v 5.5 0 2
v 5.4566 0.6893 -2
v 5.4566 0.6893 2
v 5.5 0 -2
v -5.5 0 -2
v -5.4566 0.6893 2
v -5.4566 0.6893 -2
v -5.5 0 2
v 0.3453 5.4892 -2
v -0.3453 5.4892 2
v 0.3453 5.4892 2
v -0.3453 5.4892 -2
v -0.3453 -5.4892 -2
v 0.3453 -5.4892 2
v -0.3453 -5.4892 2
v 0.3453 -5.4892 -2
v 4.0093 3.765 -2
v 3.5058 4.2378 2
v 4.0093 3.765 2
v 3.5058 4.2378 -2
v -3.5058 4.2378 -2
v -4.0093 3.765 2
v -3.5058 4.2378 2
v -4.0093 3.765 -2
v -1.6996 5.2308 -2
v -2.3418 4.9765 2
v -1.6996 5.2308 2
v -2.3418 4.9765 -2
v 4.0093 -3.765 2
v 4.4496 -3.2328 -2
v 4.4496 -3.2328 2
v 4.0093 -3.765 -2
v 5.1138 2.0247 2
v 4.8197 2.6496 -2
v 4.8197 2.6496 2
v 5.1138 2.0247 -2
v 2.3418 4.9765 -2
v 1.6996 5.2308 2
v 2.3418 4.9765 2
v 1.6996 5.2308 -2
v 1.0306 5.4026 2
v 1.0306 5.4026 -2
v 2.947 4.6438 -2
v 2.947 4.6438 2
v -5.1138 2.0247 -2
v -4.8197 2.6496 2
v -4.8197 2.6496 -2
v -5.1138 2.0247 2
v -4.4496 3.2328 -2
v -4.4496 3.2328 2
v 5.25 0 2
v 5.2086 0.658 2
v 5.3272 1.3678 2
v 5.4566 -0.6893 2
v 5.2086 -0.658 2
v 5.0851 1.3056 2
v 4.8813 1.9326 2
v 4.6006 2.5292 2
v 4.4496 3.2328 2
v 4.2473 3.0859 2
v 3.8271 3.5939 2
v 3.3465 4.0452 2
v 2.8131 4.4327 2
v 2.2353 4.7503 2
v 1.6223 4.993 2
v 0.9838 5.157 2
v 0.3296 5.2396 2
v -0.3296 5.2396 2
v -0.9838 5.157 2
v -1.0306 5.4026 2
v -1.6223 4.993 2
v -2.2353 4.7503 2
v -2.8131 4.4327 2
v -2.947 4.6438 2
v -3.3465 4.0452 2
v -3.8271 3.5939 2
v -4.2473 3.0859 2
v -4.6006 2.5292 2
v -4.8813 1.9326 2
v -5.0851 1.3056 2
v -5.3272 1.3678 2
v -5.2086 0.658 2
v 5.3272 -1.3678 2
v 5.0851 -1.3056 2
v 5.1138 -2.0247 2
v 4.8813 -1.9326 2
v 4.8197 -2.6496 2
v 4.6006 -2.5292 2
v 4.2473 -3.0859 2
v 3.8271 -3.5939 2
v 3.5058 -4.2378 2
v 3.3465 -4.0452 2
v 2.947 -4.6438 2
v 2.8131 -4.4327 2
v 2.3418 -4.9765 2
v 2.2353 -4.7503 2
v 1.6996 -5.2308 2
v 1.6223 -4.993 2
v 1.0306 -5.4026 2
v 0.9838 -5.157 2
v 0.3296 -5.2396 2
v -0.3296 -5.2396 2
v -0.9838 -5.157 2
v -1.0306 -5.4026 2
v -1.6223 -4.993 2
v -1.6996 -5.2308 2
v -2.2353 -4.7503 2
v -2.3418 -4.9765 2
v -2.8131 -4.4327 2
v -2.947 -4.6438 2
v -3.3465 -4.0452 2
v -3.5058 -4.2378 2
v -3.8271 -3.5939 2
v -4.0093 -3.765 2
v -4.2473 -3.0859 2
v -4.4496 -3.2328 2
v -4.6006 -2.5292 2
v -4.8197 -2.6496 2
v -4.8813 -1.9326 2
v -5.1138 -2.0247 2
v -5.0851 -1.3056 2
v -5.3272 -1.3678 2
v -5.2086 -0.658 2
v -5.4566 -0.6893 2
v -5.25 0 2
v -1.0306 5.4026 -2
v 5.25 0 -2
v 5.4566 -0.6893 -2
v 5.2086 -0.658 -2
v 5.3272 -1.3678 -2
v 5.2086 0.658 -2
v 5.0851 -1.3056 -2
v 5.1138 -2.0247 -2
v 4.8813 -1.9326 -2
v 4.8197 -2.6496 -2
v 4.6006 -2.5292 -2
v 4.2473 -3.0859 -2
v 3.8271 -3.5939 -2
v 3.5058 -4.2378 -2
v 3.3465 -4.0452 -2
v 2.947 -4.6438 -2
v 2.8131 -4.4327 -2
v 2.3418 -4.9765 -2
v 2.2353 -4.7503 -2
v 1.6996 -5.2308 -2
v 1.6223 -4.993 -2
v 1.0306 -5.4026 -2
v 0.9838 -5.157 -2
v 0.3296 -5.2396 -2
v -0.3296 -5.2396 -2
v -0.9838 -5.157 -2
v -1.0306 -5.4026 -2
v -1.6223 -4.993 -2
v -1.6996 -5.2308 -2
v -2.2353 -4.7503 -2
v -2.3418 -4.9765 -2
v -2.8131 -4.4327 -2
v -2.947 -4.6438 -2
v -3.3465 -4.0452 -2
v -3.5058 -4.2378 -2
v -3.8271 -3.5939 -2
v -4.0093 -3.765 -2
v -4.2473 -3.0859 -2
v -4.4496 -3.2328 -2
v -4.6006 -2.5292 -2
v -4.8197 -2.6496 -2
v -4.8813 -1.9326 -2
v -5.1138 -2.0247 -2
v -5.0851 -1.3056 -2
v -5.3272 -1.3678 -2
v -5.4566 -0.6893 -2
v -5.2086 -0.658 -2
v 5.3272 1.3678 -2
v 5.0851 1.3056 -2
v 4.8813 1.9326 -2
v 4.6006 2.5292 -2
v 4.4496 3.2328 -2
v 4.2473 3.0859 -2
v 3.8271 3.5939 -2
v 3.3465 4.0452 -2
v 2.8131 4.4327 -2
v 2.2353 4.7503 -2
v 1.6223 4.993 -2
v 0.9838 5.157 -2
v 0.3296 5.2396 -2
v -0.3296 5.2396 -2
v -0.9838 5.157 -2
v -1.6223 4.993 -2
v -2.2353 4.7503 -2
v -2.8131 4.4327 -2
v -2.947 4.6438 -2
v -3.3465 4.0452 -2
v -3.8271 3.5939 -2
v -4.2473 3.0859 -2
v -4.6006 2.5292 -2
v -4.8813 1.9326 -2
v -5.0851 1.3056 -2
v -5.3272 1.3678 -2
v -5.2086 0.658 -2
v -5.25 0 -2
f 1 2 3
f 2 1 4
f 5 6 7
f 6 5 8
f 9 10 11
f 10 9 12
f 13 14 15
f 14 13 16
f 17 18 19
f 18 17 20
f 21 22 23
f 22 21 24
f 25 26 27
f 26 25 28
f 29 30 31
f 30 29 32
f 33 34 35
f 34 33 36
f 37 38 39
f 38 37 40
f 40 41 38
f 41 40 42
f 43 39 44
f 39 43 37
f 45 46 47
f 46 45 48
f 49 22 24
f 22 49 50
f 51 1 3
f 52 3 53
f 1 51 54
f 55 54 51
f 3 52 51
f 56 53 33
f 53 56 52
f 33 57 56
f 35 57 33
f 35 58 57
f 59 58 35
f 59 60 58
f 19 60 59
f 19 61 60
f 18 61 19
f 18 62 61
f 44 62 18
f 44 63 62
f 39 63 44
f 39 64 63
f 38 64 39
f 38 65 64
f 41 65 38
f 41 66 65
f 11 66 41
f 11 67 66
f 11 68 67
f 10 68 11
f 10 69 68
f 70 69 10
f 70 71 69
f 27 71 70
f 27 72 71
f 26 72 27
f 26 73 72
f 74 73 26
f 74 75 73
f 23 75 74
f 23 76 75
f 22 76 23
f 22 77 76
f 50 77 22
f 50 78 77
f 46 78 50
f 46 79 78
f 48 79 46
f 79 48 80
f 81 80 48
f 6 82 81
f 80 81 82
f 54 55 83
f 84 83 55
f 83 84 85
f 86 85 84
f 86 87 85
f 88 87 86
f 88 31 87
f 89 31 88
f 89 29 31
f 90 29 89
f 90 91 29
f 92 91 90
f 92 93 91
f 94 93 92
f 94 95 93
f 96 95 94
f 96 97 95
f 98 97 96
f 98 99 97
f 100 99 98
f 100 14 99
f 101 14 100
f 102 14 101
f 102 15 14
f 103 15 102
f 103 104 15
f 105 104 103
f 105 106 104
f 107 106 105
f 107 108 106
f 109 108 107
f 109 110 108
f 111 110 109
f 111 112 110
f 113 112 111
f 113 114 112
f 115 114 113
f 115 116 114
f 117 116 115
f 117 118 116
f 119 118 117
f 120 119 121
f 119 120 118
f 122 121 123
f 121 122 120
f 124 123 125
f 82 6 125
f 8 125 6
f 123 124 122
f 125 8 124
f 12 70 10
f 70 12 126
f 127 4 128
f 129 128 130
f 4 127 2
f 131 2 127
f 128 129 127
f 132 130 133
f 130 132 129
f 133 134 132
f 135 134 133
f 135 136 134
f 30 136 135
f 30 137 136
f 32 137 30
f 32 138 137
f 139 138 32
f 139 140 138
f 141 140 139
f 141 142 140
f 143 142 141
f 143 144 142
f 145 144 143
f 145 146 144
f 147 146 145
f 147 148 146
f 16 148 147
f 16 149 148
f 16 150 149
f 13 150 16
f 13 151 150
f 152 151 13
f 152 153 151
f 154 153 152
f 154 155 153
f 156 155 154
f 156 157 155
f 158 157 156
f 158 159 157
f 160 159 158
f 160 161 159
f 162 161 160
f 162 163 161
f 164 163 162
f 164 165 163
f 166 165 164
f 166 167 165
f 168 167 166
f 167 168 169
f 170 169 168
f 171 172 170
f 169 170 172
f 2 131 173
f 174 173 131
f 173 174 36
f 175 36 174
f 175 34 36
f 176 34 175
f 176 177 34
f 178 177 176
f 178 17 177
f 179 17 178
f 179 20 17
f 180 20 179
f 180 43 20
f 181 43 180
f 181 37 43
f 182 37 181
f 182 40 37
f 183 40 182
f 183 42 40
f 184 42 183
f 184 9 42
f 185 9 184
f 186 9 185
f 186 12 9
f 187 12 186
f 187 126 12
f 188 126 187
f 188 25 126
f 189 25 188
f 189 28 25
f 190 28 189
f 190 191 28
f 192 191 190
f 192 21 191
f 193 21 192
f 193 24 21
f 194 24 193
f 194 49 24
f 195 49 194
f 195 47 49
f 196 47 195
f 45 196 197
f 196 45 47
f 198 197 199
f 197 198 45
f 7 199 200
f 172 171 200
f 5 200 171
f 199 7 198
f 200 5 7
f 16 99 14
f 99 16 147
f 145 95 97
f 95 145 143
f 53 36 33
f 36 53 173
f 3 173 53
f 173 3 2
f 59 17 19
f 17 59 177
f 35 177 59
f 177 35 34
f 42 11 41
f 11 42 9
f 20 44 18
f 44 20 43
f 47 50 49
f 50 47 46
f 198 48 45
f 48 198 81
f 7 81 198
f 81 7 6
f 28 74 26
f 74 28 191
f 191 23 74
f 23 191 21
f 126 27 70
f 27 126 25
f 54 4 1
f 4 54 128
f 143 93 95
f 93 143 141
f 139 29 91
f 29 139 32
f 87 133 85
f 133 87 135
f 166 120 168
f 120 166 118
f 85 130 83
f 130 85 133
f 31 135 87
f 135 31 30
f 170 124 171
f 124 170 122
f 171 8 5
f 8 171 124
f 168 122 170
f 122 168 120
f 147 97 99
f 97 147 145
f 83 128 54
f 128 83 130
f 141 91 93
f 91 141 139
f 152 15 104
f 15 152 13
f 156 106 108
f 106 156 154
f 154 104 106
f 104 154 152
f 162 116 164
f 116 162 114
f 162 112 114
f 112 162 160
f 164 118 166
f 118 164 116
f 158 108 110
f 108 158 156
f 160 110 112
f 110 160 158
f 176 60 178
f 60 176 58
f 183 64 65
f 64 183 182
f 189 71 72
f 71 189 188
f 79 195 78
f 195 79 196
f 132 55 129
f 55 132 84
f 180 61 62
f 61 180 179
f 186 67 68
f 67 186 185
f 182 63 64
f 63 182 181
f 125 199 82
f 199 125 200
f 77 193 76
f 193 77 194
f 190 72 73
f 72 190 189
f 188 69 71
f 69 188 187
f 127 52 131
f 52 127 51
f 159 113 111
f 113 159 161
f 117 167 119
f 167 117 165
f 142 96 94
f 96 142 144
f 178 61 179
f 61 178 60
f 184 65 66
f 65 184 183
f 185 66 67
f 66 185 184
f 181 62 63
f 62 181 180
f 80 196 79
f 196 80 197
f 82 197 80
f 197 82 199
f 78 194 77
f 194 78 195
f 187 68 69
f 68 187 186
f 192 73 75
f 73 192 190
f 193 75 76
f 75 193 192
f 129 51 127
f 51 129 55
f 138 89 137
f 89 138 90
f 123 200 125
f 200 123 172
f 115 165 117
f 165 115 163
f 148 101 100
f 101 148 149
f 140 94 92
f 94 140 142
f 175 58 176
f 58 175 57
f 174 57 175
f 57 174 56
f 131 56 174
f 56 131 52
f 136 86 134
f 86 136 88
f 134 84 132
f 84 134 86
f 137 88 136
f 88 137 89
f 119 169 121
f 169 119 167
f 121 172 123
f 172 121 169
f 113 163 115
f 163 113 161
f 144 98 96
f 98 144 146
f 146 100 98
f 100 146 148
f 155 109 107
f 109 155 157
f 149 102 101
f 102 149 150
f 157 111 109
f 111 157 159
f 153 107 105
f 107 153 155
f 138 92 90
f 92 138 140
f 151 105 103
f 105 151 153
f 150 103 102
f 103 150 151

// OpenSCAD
$fn = 50;


difference() {
	union() {
		translate(v = [0, 0, -2.0000000000]) {
			cylinder(h = 4, r = 5.5000000000);
		}
	}
	union() {
		translate(v = [0, 0, -100.0000000000]) {
			cylinder(h = 200, r = 5.2500000000);
		}
	}
}
